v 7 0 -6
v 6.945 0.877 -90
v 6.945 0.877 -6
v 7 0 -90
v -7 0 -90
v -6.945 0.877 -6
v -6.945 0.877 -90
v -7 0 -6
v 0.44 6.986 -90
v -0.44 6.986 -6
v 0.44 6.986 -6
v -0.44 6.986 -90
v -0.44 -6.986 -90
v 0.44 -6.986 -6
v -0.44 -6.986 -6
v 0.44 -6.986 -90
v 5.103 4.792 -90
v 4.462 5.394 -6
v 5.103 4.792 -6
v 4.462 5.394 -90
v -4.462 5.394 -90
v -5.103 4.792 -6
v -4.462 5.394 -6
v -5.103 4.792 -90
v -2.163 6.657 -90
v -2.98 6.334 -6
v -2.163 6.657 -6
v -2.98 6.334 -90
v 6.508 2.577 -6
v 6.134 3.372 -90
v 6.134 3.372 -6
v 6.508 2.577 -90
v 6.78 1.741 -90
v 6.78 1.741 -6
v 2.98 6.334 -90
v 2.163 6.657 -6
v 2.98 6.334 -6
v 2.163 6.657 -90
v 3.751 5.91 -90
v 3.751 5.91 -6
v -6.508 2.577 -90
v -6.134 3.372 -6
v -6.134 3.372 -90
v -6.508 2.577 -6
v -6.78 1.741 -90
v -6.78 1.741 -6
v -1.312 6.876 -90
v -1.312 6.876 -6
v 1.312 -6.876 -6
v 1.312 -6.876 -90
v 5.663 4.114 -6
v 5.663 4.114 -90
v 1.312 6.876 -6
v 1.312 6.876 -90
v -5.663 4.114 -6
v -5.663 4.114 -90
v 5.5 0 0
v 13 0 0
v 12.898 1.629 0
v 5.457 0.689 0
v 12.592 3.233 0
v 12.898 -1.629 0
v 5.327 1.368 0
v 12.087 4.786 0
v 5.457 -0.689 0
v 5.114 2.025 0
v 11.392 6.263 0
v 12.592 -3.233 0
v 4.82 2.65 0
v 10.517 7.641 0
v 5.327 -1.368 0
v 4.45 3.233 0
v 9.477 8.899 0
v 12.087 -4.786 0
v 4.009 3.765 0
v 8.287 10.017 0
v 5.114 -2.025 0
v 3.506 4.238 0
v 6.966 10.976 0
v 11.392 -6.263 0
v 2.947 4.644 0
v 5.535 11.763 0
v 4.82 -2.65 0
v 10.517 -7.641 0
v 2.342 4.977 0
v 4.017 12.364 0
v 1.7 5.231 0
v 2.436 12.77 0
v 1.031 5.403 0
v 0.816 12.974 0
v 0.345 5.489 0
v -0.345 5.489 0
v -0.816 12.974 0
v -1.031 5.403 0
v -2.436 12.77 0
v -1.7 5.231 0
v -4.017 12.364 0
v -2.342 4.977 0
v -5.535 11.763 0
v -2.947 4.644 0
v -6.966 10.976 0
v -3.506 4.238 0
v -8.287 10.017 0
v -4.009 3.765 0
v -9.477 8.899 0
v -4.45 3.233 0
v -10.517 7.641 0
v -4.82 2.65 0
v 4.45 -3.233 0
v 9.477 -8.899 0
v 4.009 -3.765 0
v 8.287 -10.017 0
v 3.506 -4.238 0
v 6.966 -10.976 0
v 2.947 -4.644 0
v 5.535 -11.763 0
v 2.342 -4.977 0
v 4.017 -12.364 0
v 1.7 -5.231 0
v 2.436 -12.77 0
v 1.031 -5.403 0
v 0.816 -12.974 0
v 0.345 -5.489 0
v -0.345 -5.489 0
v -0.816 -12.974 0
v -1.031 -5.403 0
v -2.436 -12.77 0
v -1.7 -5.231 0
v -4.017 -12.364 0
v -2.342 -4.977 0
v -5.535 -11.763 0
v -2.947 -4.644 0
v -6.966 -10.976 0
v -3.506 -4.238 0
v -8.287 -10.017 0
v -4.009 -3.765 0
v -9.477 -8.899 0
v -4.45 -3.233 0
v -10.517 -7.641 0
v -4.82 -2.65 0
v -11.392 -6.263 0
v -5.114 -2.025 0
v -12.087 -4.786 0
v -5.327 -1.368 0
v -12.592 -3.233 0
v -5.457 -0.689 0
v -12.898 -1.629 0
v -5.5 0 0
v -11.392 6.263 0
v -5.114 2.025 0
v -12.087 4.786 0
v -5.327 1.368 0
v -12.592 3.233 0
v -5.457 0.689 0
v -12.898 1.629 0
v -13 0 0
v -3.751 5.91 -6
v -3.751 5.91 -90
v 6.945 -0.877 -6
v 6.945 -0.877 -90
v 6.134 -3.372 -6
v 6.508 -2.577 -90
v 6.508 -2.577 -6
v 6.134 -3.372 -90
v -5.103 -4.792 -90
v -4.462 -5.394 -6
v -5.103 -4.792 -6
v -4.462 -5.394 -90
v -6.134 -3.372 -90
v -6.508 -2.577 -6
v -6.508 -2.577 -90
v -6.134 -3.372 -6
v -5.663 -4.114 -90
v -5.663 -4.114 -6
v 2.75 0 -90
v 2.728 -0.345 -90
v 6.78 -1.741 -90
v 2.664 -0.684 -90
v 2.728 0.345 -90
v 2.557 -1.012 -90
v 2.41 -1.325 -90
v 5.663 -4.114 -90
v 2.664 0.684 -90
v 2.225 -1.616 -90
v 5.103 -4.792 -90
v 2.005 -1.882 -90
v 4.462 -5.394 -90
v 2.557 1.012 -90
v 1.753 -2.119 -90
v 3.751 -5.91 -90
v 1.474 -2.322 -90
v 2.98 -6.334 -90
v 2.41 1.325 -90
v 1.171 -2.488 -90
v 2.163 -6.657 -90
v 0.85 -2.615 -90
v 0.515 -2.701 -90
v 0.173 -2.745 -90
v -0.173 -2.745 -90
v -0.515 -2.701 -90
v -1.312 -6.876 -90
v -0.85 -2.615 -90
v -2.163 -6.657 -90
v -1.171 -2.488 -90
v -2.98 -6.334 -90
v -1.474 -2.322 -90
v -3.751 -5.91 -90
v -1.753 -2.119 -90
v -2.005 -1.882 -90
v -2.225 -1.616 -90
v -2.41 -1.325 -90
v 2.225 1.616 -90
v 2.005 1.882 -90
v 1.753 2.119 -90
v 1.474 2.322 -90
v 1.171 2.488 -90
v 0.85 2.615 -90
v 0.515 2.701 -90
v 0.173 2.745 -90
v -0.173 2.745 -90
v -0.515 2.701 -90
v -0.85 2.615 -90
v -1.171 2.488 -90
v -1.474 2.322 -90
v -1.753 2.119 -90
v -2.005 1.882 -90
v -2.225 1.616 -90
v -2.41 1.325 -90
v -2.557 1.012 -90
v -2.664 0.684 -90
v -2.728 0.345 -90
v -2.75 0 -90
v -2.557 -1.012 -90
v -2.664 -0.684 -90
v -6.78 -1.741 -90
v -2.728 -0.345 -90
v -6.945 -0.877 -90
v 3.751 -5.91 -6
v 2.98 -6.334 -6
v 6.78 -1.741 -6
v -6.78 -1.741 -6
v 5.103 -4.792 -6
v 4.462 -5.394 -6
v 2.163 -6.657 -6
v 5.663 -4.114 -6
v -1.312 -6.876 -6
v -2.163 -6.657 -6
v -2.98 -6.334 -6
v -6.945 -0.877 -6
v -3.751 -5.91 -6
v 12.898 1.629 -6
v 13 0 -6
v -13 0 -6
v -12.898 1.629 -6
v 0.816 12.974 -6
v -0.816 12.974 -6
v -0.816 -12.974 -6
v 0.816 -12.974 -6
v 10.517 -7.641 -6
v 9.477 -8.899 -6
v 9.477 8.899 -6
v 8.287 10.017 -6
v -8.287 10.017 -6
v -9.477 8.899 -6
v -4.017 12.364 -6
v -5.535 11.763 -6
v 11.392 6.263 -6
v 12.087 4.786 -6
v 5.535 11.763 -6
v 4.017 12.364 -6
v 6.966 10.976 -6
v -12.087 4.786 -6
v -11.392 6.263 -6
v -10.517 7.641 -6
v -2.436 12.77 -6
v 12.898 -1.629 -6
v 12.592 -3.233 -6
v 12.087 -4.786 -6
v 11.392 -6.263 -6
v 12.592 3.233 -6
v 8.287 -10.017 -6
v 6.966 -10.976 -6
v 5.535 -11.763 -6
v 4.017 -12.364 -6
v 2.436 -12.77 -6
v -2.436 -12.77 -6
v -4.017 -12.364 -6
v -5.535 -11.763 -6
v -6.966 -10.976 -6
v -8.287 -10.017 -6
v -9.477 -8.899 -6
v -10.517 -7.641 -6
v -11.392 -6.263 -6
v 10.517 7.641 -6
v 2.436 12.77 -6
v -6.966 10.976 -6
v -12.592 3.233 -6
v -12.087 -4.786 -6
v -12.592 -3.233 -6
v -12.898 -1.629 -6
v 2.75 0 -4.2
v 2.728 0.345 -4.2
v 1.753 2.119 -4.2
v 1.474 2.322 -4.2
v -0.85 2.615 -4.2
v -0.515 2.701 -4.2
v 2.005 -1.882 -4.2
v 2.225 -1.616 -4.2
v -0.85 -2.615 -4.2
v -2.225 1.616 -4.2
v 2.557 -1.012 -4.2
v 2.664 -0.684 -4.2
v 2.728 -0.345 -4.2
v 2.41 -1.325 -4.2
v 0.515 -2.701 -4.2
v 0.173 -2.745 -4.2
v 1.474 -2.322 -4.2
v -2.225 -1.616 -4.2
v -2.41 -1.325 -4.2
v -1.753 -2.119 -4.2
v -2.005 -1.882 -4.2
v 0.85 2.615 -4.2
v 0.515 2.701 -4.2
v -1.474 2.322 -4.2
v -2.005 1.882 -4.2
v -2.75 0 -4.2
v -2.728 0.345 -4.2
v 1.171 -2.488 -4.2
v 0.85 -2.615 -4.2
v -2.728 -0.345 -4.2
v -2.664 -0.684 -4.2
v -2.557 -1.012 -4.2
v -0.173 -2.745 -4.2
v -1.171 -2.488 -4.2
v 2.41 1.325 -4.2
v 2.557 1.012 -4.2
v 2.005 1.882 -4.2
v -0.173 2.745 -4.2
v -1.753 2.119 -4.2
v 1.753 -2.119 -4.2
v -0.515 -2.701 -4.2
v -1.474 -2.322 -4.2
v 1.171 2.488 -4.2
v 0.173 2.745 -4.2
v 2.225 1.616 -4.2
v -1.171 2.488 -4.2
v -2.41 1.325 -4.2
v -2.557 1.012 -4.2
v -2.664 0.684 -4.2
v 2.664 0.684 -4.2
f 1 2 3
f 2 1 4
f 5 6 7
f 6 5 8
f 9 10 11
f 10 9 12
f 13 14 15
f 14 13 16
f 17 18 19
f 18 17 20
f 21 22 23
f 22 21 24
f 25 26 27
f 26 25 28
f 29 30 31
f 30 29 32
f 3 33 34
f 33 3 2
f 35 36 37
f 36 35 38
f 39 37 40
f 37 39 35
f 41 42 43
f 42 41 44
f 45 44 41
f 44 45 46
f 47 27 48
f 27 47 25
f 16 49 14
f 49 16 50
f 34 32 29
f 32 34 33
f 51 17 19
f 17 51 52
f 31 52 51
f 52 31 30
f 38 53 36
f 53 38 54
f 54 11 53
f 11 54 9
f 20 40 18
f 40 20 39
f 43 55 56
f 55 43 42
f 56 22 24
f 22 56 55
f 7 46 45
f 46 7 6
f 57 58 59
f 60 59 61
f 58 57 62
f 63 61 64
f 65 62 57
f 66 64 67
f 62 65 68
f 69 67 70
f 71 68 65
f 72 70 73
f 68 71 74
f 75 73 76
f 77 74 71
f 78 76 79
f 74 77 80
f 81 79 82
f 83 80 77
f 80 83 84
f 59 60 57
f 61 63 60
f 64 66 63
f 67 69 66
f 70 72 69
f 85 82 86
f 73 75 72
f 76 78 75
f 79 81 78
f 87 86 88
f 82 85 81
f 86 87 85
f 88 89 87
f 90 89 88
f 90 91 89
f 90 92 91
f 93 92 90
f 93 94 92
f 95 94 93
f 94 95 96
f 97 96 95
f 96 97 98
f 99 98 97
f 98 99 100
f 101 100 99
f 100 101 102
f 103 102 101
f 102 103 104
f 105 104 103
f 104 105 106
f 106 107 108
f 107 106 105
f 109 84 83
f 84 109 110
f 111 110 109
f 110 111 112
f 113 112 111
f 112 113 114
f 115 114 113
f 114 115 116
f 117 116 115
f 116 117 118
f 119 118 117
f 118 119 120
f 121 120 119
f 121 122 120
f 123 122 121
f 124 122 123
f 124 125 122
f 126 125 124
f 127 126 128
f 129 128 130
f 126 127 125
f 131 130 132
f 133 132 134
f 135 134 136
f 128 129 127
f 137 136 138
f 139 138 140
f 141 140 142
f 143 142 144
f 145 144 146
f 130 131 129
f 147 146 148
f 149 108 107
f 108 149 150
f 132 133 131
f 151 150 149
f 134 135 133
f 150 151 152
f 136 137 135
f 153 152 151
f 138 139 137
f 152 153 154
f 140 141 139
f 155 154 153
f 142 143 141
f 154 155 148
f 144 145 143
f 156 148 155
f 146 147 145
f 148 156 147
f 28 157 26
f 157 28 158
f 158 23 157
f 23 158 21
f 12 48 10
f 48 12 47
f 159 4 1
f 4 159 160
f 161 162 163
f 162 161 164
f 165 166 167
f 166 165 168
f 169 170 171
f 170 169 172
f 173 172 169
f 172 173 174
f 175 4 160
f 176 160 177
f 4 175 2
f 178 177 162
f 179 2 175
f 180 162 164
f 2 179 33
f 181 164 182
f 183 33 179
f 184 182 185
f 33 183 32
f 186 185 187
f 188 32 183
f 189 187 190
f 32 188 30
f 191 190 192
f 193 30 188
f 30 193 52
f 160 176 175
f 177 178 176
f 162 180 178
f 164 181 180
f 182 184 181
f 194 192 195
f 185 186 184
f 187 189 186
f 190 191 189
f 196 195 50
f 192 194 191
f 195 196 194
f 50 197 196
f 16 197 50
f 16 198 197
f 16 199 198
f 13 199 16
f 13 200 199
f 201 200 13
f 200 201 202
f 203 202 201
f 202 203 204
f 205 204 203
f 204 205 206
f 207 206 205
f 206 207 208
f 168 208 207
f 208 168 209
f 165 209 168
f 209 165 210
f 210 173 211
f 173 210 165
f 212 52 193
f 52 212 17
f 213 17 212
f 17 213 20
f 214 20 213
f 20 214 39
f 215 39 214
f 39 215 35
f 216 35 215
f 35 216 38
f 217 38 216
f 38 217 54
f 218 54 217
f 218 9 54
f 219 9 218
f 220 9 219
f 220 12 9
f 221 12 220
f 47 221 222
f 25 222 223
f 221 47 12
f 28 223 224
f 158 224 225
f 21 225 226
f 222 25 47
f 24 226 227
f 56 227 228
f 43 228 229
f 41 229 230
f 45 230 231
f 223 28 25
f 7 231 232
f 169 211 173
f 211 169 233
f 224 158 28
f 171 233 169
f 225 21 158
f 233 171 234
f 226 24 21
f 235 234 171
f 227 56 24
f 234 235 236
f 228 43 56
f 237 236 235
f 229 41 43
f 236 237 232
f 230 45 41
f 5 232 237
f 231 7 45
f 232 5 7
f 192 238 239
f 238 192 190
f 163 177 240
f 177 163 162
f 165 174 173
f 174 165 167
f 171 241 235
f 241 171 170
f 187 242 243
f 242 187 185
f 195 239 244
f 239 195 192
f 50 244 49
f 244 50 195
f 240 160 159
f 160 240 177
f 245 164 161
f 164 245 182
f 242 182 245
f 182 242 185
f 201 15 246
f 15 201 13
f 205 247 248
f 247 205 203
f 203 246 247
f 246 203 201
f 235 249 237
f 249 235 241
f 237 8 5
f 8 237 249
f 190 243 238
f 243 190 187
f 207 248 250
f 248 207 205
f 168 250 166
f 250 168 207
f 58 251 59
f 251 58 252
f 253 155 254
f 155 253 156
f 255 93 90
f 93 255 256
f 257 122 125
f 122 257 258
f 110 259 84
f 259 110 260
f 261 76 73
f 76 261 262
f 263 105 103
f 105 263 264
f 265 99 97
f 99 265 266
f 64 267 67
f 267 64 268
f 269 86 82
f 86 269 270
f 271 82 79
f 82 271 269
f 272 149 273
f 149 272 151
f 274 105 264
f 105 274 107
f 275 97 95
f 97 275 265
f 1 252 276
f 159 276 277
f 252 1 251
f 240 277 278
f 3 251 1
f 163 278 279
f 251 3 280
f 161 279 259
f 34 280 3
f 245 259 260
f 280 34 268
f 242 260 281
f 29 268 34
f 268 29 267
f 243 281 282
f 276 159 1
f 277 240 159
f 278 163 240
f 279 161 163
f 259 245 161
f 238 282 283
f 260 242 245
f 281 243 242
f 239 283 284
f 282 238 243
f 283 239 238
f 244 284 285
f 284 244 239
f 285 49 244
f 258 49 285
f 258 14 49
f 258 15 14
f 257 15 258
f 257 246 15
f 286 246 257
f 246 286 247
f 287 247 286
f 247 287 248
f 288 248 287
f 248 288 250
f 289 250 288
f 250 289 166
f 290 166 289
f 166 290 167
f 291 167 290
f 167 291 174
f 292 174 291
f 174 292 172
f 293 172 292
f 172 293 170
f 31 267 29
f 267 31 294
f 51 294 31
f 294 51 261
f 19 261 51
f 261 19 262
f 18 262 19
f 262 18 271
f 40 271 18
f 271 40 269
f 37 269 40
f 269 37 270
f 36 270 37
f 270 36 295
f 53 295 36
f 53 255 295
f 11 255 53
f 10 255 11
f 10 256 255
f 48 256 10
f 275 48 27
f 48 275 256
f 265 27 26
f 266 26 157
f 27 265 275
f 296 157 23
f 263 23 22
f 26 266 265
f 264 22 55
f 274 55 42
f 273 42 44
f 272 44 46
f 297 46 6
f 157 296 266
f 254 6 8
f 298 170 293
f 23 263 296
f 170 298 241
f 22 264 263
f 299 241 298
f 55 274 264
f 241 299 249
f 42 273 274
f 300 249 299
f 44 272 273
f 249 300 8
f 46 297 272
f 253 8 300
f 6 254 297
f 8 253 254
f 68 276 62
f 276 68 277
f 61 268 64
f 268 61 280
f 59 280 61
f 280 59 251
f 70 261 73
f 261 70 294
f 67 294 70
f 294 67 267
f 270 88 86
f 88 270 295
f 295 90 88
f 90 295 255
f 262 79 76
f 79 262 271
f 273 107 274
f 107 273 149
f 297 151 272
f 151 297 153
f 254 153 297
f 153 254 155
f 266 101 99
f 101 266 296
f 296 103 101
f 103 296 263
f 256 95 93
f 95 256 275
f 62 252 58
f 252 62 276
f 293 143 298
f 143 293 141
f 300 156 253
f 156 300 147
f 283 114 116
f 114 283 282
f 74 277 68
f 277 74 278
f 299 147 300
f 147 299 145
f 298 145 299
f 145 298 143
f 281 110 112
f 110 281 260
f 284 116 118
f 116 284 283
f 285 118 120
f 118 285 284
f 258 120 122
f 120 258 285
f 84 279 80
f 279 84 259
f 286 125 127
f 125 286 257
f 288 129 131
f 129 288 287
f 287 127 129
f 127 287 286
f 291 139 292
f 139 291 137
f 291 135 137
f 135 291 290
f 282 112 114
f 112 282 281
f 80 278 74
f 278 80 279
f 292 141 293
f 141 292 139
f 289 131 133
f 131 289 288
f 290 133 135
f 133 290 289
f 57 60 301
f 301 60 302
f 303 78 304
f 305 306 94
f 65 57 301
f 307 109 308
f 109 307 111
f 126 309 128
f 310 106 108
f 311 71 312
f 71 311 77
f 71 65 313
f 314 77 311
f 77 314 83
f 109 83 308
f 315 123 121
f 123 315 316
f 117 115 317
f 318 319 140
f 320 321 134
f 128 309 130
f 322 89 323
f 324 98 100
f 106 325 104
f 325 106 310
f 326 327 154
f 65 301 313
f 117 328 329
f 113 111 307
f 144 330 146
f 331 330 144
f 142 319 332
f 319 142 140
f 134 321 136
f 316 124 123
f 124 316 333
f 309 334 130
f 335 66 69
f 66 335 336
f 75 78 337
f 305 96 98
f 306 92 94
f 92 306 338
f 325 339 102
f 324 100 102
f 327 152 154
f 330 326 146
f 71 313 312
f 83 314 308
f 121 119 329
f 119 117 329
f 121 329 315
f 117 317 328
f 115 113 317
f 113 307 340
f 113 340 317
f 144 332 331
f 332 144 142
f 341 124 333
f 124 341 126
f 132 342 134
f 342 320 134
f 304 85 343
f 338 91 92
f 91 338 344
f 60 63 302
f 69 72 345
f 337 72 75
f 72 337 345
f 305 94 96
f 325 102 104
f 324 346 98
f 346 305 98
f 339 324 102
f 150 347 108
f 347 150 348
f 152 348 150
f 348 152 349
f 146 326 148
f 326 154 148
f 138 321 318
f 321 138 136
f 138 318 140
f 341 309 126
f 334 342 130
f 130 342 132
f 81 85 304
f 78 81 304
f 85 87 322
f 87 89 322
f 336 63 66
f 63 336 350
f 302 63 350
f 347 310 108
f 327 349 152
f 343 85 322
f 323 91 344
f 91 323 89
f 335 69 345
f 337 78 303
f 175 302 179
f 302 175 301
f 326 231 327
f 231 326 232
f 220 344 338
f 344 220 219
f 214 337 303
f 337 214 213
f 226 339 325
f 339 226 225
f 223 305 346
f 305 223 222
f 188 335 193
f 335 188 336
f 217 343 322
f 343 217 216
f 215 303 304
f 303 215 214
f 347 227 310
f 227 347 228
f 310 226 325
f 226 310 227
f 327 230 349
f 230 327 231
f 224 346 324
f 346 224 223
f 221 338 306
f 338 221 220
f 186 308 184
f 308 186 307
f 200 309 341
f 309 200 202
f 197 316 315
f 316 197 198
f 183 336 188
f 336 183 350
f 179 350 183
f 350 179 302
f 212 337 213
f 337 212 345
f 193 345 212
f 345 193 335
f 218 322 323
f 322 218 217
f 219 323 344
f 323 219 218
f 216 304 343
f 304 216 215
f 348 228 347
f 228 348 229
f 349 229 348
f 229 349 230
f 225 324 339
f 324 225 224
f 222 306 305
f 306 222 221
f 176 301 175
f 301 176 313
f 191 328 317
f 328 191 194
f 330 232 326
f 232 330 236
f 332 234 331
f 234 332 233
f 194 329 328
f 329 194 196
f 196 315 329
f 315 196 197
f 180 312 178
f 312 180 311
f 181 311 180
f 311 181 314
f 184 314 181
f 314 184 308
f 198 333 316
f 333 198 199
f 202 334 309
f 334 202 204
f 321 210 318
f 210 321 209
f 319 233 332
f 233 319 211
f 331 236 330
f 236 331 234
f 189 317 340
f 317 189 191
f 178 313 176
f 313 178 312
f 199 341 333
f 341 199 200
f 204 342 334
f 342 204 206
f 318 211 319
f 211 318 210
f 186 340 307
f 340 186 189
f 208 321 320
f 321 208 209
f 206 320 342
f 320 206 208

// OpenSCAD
$fn = 50;


difference() {
	union() {
		translate(v = [0, 0, -90.0000000000]) {
			cylinder(h = 90, r = 7.0000000000);
		}
		translate(v = [0, 0, -6.0000000000]) {
			cylinder(h = 6, r = 13.0000000000);
		}
	}
	union() {
		translate(v = [0, 0, 0]) {
			rotate(a = [0, 0, 0]) {
				difference() {
					union() {
						#translate(v = [0, 0, -90.0000000000]) {
							cylinder(h = 90, r = 2.2500000000);
						}
						#translate(v = [0, 0, -4.2000000000]) {
							cylinder(h = 4.2000000000, r = 7.0000000000, r1 = 2.7500000000, r2 = 5.5000000000);
						}
						#translate(v = [0, 0, -90.0000000000]) {
							cylinder(h = 90, r = 2.7500000000);
						}
						#translate(v = [0, 0, -90.0000000000]) {
							cylinder(h = 90, r = 2.2500000000);
						}
					}
					union();
				}
			}
		}
	}
}
